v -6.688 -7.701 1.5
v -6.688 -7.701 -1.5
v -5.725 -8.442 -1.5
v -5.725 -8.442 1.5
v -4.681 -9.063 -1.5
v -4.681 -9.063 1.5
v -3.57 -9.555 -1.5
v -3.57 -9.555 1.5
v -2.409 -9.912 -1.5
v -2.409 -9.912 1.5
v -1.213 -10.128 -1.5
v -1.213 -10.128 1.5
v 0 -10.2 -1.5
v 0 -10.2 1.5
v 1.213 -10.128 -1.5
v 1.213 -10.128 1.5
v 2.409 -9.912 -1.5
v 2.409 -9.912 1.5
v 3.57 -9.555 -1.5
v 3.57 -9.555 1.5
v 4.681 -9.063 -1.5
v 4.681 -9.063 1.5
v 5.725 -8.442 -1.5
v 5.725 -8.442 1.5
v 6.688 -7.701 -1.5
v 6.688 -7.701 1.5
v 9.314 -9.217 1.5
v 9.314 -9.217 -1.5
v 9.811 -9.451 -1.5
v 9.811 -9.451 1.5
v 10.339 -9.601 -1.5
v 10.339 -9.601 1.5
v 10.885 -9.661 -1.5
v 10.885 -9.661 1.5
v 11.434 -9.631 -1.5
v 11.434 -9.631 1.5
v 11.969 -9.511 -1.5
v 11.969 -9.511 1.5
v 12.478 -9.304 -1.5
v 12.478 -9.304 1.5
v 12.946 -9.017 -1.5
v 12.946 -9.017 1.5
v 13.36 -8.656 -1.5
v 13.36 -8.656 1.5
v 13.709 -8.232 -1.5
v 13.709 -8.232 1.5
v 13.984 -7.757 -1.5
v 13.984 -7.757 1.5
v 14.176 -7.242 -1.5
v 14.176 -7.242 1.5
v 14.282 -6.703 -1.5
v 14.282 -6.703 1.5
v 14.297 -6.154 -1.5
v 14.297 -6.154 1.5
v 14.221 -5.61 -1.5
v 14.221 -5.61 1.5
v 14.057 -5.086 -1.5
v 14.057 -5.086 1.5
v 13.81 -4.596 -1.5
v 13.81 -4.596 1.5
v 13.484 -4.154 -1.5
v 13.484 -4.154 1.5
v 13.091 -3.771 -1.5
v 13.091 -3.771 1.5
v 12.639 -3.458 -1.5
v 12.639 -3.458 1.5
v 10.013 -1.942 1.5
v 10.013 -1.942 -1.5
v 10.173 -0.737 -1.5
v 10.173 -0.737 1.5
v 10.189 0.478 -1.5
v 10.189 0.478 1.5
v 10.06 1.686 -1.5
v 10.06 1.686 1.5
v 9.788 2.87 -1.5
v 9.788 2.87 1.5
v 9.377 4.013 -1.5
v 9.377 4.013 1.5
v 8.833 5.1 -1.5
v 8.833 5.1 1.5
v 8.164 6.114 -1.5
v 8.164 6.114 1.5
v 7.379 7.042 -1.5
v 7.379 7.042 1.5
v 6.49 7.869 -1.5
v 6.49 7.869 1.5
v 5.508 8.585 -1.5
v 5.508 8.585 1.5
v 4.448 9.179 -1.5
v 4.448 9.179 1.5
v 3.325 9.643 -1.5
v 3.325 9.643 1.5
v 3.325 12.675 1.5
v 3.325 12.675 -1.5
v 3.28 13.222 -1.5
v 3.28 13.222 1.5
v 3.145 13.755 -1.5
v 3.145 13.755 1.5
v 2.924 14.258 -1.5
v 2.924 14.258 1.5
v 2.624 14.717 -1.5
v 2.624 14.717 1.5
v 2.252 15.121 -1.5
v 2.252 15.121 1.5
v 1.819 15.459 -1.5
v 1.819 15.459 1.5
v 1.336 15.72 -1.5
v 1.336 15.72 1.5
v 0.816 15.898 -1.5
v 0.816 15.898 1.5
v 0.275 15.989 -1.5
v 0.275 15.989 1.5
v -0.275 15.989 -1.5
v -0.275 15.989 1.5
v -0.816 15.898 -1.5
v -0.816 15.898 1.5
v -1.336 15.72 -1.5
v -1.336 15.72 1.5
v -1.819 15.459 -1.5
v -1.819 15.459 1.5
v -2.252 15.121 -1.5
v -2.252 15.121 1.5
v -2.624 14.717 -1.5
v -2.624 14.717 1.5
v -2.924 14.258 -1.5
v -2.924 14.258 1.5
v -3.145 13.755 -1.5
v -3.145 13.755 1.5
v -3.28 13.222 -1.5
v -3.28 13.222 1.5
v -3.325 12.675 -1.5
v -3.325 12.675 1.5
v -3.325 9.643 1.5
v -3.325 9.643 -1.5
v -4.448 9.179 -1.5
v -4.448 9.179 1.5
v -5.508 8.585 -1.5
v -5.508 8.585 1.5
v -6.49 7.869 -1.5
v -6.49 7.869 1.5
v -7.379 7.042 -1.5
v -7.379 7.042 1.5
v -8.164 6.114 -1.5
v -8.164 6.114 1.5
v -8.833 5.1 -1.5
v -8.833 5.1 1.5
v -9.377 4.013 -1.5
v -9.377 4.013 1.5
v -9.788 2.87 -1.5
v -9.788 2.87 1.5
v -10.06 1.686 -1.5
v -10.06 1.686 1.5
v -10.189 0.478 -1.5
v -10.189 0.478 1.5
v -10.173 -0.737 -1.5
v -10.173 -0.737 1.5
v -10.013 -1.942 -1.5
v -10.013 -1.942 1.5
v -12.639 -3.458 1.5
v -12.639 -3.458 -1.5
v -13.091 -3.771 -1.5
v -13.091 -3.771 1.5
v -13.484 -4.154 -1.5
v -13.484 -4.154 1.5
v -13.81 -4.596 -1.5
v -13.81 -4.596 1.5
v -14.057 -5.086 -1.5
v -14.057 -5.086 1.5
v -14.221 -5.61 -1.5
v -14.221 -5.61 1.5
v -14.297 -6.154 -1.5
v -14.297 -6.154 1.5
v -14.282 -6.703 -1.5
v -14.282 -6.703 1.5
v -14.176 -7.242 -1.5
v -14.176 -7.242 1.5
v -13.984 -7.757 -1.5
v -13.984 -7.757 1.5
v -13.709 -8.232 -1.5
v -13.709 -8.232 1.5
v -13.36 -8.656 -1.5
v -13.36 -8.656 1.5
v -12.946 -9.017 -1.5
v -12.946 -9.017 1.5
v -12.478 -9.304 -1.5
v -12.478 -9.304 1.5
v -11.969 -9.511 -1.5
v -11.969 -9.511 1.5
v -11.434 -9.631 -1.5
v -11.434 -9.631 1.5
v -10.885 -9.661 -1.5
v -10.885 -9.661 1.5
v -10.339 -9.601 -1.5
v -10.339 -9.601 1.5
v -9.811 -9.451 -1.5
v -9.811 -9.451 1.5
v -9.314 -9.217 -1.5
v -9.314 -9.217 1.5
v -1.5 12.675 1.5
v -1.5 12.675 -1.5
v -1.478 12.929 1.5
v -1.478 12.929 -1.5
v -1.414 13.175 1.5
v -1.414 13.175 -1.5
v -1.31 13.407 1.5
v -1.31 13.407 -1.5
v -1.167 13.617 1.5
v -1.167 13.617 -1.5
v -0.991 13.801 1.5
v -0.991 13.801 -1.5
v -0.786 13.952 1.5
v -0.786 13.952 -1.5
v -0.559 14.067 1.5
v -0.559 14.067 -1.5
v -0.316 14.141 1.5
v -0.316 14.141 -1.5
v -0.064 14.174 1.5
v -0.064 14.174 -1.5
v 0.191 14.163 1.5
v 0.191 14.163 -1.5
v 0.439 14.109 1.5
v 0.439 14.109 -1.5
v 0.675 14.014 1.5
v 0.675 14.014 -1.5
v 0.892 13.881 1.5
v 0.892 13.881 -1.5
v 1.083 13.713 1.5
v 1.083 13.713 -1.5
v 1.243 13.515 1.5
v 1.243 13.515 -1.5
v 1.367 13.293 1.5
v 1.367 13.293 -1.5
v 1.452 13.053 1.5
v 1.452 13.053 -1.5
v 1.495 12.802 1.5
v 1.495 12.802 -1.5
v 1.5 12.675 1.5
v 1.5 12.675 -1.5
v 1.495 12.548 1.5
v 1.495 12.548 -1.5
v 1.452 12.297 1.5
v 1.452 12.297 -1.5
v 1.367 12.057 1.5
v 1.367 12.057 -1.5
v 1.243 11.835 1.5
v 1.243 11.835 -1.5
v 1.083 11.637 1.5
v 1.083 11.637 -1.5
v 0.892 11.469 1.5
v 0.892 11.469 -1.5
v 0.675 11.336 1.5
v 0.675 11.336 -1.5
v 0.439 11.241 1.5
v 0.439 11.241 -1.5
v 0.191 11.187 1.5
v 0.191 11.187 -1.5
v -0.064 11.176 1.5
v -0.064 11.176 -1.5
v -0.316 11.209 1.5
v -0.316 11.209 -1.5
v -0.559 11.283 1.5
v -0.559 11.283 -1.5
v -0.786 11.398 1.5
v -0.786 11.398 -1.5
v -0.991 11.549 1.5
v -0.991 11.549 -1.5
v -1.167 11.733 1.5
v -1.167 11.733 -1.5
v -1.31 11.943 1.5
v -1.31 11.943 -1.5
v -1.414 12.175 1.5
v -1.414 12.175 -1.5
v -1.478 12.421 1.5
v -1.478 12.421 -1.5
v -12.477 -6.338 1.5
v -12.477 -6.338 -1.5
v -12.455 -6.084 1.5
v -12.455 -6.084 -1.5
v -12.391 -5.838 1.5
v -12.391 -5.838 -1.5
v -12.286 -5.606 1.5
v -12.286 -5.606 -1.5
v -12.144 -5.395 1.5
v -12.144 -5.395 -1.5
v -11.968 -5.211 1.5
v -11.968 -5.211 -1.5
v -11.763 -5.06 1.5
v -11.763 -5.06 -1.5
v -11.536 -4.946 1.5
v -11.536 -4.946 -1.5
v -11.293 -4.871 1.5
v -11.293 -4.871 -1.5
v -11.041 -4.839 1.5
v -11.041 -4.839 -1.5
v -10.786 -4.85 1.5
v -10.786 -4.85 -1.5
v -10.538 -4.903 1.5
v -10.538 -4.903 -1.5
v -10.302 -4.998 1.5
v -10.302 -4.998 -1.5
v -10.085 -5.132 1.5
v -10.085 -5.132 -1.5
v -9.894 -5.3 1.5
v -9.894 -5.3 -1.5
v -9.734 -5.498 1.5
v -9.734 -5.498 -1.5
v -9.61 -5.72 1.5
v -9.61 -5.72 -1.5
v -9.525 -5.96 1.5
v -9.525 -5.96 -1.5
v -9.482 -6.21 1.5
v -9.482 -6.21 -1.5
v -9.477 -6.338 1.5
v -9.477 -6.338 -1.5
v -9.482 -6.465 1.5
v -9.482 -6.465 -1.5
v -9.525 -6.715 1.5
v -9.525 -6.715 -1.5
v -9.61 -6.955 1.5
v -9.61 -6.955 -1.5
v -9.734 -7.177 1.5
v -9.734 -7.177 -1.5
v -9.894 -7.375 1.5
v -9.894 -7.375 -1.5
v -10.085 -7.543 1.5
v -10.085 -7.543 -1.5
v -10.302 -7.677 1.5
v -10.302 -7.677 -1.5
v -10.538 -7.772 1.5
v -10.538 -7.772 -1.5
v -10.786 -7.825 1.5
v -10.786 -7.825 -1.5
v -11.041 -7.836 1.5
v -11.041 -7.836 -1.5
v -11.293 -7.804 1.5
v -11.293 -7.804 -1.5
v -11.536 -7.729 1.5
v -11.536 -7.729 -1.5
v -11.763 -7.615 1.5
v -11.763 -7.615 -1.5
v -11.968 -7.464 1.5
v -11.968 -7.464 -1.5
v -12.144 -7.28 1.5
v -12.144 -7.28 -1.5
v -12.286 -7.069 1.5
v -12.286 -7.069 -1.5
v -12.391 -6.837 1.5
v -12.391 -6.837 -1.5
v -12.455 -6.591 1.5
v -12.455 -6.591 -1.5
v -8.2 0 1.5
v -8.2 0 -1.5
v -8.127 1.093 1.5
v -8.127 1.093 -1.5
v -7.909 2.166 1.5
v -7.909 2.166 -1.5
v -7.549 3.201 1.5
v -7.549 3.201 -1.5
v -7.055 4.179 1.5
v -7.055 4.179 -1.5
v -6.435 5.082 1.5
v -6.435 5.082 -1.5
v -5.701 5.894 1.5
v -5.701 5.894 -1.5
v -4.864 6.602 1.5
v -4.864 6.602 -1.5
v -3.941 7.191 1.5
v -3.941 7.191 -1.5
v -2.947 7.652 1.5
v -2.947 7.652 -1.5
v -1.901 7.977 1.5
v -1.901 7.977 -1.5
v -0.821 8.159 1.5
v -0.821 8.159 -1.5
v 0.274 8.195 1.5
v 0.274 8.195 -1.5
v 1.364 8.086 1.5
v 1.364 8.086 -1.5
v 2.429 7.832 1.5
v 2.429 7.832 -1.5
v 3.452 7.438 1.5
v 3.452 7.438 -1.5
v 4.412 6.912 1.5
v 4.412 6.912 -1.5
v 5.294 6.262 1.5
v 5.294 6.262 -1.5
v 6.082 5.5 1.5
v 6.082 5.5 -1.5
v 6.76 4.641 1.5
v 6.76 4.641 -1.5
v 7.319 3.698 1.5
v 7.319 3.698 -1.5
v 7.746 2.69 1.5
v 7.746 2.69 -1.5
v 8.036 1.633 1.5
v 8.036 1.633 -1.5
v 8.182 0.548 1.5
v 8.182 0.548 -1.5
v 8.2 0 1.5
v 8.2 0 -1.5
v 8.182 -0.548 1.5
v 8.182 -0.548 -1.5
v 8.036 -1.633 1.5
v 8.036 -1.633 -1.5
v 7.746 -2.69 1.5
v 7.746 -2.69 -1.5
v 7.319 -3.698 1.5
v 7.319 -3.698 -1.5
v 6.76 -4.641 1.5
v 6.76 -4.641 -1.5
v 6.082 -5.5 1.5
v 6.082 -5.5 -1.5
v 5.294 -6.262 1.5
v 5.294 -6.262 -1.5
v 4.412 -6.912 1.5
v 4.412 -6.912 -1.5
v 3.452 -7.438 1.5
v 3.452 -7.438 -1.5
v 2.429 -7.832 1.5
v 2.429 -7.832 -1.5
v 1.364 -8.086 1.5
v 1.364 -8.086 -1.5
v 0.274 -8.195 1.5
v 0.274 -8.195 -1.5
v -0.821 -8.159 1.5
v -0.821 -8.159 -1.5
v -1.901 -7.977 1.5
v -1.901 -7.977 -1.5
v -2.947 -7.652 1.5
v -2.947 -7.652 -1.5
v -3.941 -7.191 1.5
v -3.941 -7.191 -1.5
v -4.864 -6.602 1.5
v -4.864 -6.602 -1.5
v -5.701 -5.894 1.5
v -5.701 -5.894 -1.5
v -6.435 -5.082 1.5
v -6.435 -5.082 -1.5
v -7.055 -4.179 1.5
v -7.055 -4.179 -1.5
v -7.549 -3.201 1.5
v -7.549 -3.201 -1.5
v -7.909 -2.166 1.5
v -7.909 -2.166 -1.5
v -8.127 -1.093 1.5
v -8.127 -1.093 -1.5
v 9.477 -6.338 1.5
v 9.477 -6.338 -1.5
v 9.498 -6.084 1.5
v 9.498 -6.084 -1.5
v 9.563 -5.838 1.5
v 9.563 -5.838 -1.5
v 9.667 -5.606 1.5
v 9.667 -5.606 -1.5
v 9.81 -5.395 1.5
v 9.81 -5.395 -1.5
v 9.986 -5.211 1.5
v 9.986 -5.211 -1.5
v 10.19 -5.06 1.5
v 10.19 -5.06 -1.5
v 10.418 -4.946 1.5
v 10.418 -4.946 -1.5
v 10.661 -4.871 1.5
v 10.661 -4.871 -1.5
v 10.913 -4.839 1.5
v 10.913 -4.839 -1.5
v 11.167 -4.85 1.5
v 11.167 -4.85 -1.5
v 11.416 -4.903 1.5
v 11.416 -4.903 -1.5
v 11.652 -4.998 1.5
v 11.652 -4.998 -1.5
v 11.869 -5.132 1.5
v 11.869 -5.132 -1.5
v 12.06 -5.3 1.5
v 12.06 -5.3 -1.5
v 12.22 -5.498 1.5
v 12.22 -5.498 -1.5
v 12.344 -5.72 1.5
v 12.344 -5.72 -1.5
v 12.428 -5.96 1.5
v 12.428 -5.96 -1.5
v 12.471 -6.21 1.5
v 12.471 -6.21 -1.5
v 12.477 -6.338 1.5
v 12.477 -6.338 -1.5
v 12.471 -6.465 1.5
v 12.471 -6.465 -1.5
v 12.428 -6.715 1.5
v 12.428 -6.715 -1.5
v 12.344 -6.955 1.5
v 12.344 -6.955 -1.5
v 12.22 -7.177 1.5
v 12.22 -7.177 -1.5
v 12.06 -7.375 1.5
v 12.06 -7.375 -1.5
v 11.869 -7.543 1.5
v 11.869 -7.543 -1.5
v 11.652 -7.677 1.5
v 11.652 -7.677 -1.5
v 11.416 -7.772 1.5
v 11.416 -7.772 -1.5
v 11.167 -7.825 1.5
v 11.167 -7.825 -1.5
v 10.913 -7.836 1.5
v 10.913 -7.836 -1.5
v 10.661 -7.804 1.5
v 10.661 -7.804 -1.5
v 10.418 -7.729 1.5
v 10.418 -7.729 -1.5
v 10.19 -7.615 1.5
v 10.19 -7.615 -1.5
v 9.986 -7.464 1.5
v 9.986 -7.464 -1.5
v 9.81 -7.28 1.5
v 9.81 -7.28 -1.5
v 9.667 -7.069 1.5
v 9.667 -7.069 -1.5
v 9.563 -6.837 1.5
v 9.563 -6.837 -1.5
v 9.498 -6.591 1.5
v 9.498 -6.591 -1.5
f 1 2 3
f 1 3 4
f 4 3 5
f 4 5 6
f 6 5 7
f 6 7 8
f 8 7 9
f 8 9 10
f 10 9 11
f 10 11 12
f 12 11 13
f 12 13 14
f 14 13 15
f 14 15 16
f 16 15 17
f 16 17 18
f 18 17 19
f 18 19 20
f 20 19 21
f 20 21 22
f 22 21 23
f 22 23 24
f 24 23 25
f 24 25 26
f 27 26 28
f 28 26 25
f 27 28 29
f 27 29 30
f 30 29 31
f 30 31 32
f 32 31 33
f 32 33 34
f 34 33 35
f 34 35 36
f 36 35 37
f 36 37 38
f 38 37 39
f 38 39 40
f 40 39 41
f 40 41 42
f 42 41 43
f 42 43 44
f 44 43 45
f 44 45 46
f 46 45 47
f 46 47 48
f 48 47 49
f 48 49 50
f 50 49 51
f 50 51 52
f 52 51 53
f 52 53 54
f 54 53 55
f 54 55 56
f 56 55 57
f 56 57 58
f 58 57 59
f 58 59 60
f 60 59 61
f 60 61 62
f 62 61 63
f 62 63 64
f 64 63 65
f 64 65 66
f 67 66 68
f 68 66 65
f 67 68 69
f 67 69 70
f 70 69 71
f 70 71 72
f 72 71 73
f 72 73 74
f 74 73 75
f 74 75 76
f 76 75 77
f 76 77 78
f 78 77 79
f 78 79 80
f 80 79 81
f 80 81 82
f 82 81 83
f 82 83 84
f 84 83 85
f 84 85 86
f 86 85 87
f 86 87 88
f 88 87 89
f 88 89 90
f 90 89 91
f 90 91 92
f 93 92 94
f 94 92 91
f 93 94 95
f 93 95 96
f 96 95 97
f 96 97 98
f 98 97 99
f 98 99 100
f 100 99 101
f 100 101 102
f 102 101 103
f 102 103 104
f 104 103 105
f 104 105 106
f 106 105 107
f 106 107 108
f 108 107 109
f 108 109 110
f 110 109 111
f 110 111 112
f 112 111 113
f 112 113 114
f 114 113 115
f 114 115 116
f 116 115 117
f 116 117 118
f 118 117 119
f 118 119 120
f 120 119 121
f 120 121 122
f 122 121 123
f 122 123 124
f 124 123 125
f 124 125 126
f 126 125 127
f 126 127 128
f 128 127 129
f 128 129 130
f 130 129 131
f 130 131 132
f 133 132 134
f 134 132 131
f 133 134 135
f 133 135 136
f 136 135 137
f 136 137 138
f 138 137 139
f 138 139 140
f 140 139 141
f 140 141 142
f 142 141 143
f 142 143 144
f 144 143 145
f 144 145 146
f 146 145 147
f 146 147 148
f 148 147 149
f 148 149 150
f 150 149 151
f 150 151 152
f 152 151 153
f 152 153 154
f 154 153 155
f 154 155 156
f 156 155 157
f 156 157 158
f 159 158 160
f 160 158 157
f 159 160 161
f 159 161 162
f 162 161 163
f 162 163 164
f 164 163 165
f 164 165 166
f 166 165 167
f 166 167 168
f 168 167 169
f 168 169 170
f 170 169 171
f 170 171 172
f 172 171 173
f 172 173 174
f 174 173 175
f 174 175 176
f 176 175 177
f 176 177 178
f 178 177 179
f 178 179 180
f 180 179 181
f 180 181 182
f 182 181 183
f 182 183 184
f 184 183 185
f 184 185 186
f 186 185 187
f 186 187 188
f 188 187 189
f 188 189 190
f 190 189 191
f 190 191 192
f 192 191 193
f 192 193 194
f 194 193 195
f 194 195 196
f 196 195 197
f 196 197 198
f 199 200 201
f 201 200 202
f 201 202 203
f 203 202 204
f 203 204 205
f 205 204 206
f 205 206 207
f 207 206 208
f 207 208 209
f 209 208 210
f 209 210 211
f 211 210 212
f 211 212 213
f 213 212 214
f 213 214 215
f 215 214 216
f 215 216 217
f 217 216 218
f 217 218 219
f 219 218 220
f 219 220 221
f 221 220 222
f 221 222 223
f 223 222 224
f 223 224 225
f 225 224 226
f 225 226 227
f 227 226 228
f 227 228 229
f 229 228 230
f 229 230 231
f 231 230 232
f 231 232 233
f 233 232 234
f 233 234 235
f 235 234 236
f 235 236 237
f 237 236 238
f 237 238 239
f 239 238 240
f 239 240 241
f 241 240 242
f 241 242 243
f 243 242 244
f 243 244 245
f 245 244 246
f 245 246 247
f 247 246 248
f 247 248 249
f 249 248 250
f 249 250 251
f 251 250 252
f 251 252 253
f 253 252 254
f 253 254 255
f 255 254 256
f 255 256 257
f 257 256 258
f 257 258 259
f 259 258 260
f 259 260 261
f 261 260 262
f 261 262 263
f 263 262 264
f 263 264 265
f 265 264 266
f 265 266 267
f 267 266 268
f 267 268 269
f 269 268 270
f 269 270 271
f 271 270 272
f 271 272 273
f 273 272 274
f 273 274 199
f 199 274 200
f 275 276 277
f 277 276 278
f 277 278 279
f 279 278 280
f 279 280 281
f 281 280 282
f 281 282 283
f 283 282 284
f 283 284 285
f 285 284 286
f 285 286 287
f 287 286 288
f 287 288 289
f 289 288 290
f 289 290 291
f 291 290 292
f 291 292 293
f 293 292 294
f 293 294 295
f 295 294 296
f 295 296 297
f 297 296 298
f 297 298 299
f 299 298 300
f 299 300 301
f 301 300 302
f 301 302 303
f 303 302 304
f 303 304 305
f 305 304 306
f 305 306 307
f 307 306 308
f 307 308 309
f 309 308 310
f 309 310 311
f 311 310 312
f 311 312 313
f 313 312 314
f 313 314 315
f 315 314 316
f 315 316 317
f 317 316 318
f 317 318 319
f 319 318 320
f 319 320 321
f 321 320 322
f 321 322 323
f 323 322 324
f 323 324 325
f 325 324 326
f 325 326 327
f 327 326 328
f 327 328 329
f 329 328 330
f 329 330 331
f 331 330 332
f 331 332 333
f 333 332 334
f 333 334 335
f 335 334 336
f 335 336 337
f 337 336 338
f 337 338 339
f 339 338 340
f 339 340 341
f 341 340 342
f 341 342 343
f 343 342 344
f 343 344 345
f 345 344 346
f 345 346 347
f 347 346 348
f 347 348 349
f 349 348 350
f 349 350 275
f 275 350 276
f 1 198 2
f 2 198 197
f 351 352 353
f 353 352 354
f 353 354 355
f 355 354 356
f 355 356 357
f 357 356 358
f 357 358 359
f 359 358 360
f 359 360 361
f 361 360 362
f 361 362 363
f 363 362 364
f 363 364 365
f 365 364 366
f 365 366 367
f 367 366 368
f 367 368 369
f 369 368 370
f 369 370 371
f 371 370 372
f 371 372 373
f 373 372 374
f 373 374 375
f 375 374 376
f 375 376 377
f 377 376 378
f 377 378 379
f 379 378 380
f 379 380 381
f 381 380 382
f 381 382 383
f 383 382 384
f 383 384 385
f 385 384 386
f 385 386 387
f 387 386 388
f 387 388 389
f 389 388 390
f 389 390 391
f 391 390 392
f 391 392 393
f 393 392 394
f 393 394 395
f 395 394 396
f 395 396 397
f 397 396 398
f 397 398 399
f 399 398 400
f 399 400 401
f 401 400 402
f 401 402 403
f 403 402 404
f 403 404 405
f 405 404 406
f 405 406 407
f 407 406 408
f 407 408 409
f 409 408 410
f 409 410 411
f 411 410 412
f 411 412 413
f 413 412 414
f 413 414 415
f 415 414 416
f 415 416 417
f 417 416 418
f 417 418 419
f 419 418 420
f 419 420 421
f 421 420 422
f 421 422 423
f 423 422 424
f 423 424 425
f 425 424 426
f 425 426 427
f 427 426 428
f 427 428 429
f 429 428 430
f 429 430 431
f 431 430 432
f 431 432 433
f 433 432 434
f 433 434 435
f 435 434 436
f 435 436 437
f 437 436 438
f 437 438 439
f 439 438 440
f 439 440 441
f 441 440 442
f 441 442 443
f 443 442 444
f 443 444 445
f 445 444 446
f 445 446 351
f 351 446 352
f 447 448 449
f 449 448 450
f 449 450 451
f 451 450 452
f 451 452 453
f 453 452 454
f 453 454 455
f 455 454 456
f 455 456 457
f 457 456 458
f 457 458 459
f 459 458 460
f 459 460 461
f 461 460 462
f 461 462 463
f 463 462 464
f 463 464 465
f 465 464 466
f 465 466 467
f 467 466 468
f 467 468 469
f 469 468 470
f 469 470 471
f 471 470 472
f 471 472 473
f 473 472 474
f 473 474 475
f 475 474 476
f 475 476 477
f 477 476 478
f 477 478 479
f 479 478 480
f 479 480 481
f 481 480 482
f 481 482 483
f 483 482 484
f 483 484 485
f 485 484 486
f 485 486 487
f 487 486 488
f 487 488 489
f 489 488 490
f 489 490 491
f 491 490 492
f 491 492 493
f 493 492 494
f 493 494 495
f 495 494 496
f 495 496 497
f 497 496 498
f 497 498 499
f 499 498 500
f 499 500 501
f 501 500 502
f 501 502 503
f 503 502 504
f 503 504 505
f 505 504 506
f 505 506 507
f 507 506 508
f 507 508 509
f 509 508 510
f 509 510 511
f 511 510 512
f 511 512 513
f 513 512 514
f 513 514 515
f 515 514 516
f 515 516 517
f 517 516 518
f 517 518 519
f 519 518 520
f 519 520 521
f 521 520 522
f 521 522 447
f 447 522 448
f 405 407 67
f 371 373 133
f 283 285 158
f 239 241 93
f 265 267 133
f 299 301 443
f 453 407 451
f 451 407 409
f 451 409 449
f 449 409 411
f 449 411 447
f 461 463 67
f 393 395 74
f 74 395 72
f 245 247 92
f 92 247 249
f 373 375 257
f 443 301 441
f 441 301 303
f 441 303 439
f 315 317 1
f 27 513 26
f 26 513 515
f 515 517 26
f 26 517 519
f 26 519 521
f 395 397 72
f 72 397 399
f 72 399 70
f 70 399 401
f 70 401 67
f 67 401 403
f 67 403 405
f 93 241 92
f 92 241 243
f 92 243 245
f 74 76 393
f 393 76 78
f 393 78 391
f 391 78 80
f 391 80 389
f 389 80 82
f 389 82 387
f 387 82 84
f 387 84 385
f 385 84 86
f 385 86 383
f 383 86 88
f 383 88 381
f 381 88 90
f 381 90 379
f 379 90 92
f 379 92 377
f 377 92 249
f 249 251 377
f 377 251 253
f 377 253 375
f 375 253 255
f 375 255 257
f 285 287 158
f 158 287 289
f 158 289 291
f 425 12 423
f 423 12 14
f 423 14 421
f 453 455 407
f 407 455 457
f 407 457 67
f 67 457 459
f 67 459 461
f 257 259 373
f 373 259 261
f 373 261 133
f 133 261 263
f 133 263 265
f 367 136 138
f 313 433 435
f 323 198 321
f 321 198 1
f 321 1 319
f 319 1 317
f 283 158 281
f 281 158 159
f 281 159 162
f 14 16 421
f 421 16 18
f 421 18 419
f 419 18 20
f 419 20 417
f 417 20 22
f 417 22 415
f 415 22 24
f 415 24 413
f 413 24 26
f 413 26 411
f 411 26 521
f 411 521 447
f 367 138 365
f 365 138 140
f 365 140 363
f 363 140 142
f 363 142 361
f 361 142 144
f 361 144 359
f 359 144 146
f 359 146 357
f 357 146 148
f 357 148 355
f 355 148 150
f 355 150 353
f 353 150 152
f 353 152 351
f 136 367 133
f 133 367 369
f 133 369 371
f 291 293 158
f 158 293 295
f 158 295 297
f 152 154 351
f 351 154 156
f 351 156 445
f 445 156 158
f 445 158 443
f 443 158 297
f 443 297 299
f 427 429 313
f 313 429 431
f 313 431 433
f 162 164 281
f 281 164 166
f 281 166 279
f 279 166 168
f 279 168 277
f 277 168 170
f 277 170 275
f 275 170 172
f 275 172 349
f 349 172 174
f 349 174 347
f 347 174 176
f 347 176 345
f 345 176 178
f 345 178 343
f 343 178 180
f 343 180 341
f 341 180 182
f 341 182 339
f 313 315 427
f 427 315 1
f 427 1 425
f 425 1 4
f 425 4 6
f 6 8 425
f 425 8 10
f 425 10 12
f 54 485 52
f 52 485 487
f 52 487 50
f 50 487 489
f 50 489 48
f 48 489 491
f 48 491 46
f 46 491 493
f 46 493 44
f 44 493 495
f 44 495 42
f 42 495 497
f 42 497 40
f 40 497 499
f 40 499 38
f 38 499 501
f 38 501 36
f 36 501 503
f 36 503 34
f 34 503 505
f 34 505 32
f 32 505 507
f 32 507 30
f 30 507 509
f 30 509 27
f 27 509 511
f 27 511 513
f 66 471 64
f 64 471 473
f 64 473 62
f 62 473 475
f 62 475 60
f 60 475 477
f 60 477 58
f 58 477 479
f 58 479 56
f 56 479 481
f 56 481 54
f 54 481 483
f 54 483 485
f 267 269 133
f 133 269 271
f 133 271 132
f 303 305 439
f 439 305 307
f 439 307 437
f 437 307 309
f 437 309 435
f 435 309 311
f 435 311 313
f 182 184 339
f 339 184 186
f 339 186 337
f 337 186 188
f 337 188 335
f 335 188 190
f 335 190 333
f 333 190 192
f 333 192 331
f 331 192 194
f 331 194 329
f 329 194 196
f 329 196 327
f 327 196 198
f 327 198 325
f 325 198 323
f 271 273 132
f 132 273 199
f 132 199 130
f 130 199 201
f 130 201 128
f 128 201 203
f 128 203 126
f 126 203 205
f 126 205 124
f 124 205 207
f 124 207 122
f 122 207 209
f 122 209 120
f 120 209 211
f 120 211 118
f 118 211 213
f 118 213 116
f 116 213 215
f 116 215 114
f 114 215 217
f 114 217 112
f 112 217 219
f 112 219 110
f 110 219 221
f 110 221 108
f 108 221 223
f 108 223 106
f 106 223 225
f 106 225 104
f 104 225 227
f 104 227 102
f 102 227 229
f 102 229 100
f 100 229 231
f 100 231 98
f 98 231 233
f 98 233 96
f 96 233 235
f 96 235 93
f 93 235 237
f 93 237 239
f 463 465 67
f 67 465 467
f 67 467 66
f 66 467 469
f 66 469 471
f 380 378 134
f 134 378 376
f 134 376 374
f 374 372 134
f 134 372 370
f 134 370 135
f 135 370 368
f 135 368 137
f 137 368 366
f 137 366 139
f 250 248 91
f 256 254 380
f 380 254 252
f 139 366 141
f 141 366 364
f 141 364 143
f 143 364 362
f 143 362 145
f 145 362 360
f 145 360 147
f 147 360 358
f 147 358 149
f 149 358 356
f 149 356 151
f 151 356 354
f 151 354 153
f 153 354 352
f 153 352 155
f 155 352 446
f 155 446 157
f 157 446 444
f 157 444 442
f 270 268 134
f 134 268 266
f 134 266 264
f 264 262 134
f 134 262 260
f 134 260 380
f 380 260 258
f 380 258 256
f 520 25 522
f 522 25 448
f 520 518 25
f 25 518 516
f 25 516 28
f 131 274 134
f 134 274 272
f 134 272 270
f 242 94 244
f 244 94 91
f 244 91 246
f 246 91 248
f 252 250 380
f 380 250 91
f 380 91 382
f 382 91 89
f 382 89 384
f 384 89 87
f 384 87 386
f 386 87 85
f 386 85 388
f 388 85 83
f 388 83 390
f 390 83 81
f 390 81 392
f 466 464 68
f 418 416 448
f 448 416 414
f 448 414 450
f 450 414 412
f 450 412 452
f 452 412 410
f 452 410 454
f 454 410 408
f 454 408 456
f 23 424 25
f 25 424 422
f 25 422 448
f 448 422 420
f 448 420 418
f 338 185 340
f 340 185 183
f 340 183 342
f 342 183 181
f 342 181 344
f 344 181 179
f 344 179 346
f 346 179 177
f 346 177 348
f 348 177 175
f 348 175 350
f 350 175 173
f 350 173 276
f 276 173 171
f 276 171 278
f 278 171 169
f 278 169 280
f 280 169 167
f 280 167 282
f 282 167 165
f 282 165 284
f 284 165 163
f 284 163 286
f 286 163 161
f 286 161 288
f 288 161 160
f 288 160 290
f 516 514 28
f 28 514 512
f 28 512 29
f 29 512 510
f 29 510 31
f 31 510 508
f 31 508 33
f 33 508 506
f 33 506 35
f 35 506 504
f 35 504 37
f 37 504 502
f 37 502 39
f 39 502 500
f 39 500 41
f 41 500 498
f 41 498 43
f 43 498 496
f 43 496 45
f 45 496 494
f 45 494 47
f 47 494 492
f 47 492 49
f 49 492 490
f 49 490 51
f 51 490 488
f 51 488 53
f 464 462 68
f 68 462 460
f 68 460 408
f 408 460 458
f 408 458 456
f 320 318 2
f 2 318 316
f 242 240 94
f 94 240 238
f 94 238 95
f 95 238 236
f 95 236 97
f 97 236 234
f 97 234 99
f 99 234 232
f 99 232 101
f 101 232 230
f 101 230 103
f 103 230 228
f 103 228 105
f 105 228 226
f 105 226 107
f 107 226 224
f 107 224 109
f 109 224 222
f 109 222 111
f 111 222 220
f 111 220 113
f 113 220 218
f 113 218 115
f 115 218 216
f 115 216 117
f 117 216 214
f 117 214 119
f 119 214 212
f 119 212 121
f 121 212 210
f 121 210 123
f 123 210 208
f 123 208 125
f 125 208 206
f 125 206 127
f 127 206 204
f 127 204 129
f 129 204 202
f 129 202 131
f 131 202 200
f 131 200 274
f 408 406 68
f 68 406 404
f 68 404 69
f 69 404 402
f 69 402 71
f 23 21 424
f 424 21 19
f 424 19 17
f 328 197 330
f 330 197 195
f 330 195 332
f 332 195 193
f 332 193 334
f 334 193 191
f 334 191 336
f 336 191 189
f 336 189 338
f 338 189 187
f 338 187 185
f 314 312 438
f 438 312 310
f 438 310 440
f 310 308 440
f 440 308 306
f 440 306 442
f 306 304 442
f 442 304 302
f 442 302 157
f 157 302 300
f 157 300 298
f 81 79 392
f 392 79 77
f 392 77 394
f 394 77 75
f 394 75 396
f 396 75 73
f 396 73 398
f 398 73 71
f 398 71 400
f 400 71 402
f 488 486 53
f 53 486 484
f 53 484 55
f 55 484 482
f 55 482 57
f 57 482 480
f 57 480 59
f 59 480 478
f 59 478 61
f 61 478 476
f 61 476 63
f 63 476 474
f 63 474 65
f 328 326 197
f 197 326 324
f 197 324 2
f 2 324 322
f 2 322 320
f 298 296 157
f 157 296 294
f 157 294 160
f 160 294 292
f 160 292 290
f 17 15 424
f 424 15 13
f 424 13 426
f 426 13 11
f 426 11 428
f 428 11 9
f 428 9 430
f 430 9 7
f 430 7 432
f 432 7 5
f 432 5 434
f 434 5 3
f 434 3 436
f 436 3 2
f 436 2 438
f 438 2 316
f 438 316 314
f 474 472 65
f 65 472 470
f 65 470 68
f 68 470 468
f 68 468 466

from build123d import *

# Parameters (mm, degrees)
SKETCH_1_R      = 1.5
EXTRUDE_1_DEPTH = 1.5


with BuildPart() as part:
    # Эскиз1 → Бобышка-Вытянуть1 (new, symmetric)
    # profile 1 of 9: a face of its own
    with BuildSketch(Plane.XY):
        with BuildLine():
            Line((-3.325, 7.495623723), (-3.325, 9.642840608))
            ThreePointArc((-3.325, 9.642840608), (-8.833459119, 5.1), (-10.013444932, -1.941885837))
            Line((-10.013444932, -1.941885837), (-8.153900562, -0.868277394))
            ThreePointArc((-8.153900562, -0.868277394), (-7.101408311, 4.1), (-3.325, 7.495623723))
        make_face()
    # profile 2 of 9: a face of its own
    with BuildSketch(Plane.XY):
        with BuildLine():
            Line((-8.153900562, -0.868277394), (-10.013444932, -1.941885837))
            ThreePointArc((-10.013444932, -1.941885837), (-8.833459119, -5.1), (-6.688444932, -7.700954772))
            Line((-6.688444932, -7.700954772), (-4.828900562, -6.627346329))
            ThreePointArc((-4.828900562, -6.627346329), (-7.101408311, -4.1), (-8.153900562, -0.868277394))
        make_face()
    # profile 3 of 9: a face of its own
    with BuildSketch(Plane.XY):
        with BuildLine():
            ThreePointArc((-6.688444932, -7.700954772), (-8.833459119, -5.1), (-10.013444932, -1.941885837))
            Line((-10.013444932, -1.941885837), (-12.639371993, -3.457965532))
            ThreePointArc((-12.639371993, -3.457965532), (-13.856406461, -8), (-9.314371993, -9.217034468))
            Line((-9.314371993, -9.217034468), (-6.688444932, -7.700954772))
        make_face()
        with Locations((-10.976871993, -6.3375)):
            Circle(SKETCH_1_R, mode=Mode.SUBTRACT)
    # profile 4 of 9: a face of its own
    with BuildSketch(Plane.XY):
        with BuildLine():
            ThreePointArc((-6.688444932, -7.700954772), (0, -10.2), (6.688444932, -7.700954772))
            Line((6.688444932, -7.700954772), (4.828900562, -6.627346329))
            ThreePointArc((4.828900562, -6.627346329), (0, -8.2), (-4.828900562, -6.627346329))
            Line((-4.828900562, -6.627346329), (-6.688444932, -7.700954772))
        make_face()
    # profile 5 of 9: a face of its own
    with BuildSketch(Plane.XY):
        with BuildLine():
            ThreePointArc((6.688444932, -7.700954772), (8.833459119, -5.1), (10.013444932, -1.941885837))
            Line((10.013444932, -1.941885837), (8.153900562, -0.868277394))
            ThreePointArc((8.153900562, -0.868277394), (7.101408311, -4.1), (4.828900562, -6.627346329))
            Line((4.828900562, -6.627346329), (6.688444932, -7.700954772))
        make_face()
    # profile 6 of 9: a face of its own
    with BuildSketch(Plane.XY):
        with BuildLine():
            Line((12.639371993, -3.457965532), (10.013444932, -1.941885837))
            ThreePointArc((10.013444932, -1.941885837), (8.833459119, -5.1), (6.688444932, -7.700954772))
            Line((6.688444932, -7.700954772), (9.314371993, -9.217034468))
            ThreePointArc((9.314371993, -9.217034468), (13.856406461, -8), (12.639371993, -3.457965532))
        make_face()
        with Locations((10.976871993, -6.3375)):
            Circle(SKETCH_1_R, mode=Mode.SUBTRACT)
    # profile 7 of 9: a face of its own
    with BuildSketch(Plane.XY):
        with BuildLine():
            ThreePointArc((10.2, 0), (8.305269412, 5.921359641), (3.325, 9.642840608))
            Line((3.325, 9.642840608), (3.325, 7.495623723))
            ThreePointArc((3.325, 7.495623723), (6.874045388, 4.470738194), (8.2, 0))
            ThreePointArc((8.2, 0), (8.18846703, -0.434750156), (8.153900562, -0.868277394))
            Line((8.153900562, -0.868277394), (10.013444932, -1.941885837))
            ThreePointArc((10.013444932, -1.941885837), (10.153254116, -0.975413168), (10.2, 0))
        make_face()
    # profile 8 of 9: a face of its own
    with BuildSketch(Plane.XY):
        with BuildLine():
            Line((3.325, 7.495623723), (3.325, 9.642840608))
            ThreePointArc((3.325, 9.642840608), (0, 10.2), (-3.325, 9.642840608))
            Line((-3.325, 9.642840608), (-3.325, 7.495623723))
            ThreePointArc((-3.325, 7.495623723), (0, 8.2), (3.325, 7.495623723))
        make_face()
    # profile 9 of 9: a face of its own
    with BuildSketch(Plane.XY):
        with BuildLine():
            Line((3.325, 9.642840608), (3.325, 12.675))
            ThreePointArc((3.325, 12.675), (0, 16), (-3.325, 12.675))
            Line((-3.325, 12.675), (-3.325, 9.642840608))
            ThreePointArc((-3.325, 9.642840608), (0, 10.2), (3.325, 9.642840608))
        make_face()
        with Locations((0, 12.675)):
            Circle(SKETCH_1_R, mode=Mode.SUBTRACT)
    extrude(amount=EXTRUDE_1_DEPTH, both=True)


solid = part.part
